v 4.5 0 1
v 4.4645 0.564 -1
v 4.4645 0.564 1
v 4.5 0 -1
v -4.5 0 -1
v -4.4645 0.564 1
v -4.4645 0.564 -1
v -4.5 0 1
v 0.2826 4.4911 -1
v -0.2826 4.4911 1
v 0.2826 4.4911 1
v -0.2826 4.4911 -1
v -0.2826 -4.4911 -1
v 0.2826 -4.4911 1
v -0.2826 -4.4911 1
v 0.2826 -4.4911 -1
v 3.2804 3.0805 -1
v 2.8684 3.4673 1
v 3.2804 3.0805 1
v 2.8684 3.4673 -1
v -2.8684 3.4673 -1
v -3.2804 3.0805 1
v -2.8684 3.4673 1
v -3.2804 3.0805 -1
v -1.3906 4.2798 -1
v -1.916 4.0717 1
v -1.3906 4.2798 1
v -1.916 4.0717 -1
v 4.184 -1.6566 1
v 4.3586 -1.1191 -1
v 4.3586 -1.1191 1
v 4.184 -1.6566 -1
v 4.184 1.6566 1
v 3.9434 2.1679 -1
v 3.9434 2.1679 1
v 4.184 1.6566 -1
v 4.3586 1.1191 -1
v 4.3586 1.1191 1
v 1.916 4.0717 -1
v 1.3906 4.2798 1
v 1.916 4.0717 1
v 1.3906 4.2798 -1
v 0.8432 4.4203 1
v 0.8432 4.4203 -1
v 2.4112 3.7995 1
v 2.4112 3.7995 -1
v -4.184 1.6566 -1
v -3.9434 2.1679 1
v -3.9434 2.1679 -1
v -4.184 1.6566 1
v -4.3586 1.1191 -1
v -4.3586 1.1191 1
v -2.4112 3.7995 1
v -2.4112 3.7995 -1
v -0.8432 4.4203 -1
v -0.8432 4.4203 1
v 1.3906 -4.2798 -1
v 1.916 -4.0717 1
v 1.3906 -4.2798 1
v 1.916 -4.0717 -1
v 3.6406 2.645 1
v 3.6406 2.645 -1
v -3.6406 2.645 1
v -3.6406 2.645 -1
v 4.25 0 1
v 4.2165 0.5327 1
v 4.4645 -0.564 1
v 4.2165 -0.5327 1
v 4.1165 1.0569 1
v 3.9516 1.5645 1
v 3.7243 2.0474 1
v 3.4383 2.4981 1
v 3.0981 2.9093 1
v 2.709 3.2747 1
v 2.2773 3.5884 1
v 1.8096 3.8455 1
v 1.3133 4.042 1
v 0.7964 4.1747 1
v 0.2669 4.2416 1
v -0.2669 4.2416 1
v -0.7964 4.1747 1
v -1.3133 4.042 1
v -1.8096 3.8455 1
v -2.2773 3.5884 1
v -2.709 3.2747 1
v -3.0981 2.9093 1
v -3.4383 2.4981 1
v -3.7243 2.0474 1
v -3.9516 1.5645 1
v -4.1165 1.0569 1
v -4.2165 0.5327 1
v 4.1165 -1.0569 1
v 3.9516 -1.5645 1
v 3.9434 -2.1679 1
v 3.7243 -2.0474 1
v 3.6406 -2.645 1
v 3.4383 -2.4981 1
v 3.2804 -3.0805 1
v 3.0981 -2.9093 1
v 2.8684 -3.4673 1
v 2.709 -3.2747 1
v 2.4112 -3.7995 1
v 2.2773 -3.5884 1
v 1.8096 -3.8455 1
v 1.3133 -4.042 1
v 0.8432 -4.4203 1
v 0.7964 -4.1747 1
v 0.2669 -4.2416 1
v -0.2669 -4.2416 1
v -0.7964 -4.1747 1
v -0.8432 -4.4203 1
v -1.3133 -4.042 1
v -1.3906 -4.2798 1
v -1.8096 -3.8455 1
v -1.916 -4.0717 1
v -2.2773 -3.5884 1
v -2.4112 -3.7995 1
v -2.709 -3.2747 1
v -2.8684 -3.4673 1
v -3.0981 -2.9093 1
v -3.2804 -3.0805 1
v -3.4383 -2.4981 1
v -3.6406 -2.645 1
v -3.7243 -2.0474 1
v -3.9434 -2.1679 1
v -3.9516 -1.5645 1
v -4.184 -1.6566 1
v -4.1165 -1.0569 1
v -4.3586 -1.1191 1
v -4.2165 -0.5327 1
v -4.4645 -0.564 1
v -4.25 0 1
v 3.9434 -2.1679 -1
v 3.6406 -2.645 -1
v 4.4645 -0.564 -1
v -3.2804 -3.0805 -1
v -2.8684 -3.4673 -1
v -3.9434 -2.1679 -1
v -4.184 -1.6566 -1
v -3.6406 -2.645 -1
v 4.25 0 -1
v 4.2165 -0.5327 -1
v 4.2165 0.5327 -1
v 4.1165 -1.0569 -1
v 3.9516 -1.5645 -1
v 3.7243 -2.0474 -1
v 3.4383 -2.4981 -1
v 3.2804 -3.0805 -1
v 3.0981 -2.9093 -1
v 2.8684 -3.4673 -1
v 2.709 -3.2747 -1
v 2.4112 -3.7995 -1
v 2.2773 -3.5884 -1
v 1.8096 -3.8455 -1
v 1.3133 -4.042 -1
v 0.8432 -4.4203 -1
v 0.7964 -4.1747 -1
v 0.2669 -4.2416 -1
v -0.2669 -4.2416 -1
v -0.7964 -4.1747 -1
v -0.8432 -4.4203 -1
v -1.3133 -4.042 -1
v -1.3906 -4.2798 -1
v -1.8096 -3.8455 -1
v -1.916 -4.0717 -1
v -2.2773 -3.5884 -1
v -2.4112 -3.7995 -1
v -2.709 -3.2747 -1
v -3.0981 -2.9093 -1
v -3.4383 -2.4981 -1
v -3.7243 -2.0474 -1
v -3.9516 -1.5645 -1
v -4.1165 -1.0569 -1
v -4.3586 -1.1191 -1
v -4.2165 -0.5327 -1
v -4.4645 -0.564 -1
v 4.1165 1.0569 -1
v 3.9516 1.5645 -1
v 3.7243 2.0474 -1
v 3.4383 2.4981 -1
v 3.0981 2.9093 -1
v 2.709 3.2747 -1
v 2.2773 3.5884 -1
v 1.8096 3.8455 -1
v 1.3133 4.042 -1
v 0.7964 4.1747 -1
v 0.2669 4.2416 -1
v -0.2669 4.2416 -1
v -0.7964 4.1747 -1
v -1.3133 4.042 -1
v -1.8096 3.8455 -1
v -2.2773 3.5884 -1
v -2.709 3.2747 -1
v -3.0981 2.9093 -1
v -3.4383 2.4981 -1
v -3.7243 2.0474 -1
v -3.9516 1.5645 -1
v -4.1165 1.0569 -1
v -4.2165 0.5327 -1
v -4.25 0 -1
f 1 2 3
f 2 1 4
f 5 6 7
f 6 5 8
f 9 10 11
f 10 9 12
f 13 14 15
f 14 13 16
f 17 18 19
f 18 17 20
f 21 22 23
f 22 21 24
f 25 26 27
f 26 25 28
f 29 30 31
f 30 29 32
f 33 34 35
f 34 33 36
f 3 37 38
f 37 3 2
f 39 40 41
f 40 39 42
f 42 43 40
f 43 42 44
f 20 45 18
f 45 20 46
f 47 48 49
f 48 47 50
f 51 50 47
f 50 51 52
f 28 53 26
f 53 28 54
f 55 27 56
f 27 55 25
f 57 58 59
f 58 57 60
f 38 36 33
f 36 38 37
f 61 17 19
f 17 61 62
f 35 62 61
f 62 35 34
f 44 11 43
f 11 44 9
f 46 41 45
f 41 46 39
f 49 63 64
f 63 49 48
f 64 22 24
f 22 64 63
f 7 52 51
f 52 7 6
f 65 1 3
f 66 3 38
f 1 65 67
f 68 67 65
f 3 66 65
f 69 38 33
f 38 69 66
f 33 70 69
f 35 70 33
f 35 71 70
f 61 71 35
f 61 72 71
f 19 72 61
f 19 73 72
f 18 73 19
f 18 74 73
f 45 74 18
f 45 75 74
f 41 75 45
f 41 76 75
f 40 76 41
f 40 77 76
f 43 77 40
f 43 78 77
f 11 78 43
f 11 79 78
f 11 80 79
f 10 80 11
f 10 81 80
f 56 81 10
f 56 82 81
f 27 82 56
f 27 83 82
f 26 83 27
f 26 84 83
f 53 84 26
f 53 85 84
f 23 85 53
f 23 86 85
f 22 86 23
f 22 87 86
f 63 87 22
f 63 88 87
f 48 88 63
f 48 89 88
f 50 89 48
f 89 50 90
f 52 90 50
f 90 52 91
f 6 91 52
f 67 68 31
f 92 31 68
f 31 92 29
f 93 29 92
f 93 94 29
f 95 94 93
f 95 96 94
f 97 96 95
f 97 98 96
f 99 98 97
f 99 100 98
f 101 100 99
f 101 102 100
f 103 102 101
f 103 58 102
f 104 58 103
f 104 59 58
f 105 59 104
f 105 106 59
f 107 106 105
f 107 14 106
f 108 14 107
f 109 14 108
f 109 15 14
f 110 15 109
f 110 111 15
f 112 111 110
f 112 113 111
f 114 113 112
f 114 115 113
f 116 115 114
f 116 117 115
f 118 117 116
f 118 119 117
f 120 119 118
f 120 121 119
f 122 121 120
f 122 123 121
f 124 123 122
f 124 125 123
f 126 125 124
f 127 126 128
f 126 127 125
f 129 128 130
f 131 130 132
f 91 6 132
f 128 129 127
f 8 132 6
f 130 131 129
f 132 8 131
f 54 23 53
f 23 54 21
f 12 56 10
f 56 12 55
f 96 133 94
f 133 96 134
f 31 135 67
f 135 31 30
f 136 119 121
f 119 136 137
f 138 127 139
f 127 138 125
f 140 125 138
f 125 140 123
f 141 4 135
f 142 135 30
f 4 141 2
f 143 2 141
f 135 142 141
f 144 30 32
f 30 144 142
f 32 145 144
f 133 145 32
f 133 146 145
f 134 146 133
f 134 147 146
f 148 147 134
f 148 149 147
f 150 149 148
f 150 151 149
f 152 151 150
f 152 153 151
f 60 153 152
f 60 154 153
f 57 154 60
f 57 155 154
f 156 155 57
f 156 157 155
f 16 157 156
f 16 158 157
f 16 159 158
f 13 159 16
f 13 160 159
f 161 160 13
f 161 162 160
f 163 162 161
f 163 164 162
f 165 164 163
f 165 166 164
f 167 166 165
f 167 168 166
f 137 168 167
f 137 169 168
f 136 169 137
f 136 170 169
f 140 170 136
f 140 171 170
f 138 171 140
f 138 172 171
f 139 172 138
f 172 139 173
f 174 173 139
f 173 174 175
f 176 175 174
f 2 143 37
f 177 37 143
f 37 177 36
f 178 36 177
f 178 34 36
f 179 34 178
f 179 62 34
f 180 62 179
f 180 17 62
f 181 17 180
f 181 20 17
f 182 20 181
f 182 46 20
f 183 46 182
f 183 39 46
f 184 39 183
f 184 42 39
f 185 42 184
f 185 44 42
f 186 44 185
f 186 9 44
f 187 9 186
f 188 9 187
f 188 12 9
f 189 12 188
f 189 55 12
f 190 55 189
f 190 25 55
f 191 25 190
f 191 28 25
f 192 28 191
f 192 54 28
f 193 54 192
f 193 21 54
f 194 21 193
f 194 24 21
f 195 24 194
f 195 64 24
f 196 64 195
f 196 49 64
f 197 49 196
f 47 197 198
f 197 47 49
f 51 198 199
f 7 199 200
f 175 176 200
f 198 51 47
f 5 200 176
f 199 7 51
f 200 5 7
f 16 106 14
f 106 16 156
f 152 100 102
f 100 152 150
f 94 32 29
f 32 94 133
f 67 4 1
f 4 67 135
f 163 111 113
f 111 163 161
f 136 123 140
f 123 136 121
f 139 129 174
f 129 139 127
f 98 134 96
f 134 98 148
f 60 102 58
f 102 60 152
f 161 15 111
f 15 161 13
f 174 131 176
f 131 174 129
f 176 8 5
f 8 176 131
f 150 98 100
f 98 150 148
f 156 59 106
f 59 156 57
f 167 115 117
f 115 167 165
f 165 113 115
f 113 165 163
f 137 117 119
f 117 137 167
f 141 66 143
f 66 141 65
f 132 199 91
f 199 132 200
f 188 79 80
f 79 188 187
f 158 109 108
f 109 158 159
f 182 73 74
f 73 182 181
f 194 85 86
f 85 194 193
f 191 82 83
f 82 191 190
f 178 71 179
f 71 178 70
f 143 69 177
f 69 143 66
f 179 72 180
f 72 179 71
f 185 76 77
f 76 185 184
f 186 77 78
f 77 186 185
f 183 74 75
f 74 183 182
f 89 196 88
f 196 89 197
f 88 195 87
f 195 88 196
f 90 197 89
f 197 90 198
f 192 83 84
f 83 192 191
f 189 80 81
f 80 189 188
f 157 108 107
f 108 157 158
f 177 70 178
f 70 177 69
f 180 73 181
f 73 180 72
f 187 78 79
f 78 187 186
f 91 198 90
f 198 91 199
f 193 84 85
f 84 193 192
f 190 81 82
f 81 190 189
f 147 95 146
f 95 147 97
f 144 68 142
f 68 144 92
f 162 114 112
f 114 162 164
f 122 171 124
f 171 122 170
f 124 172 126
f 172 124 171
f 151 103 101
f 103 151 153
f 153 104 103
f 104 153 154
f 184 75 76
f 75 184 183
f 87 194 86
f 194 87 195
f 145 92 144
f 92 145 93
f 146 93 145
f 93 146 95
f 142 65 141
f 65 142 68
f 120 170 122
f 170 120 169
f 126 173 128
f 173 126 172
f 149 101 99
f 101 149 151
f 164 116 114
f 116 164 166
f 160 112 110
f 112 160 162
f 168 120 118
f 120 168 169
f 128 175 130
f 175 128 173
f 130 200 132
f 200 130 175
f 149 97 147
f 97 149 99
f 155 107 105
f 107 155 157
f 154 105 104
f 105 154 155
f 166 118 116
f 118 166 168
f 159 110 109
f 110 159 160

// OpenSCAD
$fn = 50;


difference() {
	union() {
		translate(v = [0, 0, -1.0000000000]) {
			cylinder(h = 2, r = 4.5000000000);
		}
	}
	union() {
		translate(v = [0, 0, -100.0000000000]) {
			cylinder(h = 200, r = 4.2500000000);
		}
	}
}
